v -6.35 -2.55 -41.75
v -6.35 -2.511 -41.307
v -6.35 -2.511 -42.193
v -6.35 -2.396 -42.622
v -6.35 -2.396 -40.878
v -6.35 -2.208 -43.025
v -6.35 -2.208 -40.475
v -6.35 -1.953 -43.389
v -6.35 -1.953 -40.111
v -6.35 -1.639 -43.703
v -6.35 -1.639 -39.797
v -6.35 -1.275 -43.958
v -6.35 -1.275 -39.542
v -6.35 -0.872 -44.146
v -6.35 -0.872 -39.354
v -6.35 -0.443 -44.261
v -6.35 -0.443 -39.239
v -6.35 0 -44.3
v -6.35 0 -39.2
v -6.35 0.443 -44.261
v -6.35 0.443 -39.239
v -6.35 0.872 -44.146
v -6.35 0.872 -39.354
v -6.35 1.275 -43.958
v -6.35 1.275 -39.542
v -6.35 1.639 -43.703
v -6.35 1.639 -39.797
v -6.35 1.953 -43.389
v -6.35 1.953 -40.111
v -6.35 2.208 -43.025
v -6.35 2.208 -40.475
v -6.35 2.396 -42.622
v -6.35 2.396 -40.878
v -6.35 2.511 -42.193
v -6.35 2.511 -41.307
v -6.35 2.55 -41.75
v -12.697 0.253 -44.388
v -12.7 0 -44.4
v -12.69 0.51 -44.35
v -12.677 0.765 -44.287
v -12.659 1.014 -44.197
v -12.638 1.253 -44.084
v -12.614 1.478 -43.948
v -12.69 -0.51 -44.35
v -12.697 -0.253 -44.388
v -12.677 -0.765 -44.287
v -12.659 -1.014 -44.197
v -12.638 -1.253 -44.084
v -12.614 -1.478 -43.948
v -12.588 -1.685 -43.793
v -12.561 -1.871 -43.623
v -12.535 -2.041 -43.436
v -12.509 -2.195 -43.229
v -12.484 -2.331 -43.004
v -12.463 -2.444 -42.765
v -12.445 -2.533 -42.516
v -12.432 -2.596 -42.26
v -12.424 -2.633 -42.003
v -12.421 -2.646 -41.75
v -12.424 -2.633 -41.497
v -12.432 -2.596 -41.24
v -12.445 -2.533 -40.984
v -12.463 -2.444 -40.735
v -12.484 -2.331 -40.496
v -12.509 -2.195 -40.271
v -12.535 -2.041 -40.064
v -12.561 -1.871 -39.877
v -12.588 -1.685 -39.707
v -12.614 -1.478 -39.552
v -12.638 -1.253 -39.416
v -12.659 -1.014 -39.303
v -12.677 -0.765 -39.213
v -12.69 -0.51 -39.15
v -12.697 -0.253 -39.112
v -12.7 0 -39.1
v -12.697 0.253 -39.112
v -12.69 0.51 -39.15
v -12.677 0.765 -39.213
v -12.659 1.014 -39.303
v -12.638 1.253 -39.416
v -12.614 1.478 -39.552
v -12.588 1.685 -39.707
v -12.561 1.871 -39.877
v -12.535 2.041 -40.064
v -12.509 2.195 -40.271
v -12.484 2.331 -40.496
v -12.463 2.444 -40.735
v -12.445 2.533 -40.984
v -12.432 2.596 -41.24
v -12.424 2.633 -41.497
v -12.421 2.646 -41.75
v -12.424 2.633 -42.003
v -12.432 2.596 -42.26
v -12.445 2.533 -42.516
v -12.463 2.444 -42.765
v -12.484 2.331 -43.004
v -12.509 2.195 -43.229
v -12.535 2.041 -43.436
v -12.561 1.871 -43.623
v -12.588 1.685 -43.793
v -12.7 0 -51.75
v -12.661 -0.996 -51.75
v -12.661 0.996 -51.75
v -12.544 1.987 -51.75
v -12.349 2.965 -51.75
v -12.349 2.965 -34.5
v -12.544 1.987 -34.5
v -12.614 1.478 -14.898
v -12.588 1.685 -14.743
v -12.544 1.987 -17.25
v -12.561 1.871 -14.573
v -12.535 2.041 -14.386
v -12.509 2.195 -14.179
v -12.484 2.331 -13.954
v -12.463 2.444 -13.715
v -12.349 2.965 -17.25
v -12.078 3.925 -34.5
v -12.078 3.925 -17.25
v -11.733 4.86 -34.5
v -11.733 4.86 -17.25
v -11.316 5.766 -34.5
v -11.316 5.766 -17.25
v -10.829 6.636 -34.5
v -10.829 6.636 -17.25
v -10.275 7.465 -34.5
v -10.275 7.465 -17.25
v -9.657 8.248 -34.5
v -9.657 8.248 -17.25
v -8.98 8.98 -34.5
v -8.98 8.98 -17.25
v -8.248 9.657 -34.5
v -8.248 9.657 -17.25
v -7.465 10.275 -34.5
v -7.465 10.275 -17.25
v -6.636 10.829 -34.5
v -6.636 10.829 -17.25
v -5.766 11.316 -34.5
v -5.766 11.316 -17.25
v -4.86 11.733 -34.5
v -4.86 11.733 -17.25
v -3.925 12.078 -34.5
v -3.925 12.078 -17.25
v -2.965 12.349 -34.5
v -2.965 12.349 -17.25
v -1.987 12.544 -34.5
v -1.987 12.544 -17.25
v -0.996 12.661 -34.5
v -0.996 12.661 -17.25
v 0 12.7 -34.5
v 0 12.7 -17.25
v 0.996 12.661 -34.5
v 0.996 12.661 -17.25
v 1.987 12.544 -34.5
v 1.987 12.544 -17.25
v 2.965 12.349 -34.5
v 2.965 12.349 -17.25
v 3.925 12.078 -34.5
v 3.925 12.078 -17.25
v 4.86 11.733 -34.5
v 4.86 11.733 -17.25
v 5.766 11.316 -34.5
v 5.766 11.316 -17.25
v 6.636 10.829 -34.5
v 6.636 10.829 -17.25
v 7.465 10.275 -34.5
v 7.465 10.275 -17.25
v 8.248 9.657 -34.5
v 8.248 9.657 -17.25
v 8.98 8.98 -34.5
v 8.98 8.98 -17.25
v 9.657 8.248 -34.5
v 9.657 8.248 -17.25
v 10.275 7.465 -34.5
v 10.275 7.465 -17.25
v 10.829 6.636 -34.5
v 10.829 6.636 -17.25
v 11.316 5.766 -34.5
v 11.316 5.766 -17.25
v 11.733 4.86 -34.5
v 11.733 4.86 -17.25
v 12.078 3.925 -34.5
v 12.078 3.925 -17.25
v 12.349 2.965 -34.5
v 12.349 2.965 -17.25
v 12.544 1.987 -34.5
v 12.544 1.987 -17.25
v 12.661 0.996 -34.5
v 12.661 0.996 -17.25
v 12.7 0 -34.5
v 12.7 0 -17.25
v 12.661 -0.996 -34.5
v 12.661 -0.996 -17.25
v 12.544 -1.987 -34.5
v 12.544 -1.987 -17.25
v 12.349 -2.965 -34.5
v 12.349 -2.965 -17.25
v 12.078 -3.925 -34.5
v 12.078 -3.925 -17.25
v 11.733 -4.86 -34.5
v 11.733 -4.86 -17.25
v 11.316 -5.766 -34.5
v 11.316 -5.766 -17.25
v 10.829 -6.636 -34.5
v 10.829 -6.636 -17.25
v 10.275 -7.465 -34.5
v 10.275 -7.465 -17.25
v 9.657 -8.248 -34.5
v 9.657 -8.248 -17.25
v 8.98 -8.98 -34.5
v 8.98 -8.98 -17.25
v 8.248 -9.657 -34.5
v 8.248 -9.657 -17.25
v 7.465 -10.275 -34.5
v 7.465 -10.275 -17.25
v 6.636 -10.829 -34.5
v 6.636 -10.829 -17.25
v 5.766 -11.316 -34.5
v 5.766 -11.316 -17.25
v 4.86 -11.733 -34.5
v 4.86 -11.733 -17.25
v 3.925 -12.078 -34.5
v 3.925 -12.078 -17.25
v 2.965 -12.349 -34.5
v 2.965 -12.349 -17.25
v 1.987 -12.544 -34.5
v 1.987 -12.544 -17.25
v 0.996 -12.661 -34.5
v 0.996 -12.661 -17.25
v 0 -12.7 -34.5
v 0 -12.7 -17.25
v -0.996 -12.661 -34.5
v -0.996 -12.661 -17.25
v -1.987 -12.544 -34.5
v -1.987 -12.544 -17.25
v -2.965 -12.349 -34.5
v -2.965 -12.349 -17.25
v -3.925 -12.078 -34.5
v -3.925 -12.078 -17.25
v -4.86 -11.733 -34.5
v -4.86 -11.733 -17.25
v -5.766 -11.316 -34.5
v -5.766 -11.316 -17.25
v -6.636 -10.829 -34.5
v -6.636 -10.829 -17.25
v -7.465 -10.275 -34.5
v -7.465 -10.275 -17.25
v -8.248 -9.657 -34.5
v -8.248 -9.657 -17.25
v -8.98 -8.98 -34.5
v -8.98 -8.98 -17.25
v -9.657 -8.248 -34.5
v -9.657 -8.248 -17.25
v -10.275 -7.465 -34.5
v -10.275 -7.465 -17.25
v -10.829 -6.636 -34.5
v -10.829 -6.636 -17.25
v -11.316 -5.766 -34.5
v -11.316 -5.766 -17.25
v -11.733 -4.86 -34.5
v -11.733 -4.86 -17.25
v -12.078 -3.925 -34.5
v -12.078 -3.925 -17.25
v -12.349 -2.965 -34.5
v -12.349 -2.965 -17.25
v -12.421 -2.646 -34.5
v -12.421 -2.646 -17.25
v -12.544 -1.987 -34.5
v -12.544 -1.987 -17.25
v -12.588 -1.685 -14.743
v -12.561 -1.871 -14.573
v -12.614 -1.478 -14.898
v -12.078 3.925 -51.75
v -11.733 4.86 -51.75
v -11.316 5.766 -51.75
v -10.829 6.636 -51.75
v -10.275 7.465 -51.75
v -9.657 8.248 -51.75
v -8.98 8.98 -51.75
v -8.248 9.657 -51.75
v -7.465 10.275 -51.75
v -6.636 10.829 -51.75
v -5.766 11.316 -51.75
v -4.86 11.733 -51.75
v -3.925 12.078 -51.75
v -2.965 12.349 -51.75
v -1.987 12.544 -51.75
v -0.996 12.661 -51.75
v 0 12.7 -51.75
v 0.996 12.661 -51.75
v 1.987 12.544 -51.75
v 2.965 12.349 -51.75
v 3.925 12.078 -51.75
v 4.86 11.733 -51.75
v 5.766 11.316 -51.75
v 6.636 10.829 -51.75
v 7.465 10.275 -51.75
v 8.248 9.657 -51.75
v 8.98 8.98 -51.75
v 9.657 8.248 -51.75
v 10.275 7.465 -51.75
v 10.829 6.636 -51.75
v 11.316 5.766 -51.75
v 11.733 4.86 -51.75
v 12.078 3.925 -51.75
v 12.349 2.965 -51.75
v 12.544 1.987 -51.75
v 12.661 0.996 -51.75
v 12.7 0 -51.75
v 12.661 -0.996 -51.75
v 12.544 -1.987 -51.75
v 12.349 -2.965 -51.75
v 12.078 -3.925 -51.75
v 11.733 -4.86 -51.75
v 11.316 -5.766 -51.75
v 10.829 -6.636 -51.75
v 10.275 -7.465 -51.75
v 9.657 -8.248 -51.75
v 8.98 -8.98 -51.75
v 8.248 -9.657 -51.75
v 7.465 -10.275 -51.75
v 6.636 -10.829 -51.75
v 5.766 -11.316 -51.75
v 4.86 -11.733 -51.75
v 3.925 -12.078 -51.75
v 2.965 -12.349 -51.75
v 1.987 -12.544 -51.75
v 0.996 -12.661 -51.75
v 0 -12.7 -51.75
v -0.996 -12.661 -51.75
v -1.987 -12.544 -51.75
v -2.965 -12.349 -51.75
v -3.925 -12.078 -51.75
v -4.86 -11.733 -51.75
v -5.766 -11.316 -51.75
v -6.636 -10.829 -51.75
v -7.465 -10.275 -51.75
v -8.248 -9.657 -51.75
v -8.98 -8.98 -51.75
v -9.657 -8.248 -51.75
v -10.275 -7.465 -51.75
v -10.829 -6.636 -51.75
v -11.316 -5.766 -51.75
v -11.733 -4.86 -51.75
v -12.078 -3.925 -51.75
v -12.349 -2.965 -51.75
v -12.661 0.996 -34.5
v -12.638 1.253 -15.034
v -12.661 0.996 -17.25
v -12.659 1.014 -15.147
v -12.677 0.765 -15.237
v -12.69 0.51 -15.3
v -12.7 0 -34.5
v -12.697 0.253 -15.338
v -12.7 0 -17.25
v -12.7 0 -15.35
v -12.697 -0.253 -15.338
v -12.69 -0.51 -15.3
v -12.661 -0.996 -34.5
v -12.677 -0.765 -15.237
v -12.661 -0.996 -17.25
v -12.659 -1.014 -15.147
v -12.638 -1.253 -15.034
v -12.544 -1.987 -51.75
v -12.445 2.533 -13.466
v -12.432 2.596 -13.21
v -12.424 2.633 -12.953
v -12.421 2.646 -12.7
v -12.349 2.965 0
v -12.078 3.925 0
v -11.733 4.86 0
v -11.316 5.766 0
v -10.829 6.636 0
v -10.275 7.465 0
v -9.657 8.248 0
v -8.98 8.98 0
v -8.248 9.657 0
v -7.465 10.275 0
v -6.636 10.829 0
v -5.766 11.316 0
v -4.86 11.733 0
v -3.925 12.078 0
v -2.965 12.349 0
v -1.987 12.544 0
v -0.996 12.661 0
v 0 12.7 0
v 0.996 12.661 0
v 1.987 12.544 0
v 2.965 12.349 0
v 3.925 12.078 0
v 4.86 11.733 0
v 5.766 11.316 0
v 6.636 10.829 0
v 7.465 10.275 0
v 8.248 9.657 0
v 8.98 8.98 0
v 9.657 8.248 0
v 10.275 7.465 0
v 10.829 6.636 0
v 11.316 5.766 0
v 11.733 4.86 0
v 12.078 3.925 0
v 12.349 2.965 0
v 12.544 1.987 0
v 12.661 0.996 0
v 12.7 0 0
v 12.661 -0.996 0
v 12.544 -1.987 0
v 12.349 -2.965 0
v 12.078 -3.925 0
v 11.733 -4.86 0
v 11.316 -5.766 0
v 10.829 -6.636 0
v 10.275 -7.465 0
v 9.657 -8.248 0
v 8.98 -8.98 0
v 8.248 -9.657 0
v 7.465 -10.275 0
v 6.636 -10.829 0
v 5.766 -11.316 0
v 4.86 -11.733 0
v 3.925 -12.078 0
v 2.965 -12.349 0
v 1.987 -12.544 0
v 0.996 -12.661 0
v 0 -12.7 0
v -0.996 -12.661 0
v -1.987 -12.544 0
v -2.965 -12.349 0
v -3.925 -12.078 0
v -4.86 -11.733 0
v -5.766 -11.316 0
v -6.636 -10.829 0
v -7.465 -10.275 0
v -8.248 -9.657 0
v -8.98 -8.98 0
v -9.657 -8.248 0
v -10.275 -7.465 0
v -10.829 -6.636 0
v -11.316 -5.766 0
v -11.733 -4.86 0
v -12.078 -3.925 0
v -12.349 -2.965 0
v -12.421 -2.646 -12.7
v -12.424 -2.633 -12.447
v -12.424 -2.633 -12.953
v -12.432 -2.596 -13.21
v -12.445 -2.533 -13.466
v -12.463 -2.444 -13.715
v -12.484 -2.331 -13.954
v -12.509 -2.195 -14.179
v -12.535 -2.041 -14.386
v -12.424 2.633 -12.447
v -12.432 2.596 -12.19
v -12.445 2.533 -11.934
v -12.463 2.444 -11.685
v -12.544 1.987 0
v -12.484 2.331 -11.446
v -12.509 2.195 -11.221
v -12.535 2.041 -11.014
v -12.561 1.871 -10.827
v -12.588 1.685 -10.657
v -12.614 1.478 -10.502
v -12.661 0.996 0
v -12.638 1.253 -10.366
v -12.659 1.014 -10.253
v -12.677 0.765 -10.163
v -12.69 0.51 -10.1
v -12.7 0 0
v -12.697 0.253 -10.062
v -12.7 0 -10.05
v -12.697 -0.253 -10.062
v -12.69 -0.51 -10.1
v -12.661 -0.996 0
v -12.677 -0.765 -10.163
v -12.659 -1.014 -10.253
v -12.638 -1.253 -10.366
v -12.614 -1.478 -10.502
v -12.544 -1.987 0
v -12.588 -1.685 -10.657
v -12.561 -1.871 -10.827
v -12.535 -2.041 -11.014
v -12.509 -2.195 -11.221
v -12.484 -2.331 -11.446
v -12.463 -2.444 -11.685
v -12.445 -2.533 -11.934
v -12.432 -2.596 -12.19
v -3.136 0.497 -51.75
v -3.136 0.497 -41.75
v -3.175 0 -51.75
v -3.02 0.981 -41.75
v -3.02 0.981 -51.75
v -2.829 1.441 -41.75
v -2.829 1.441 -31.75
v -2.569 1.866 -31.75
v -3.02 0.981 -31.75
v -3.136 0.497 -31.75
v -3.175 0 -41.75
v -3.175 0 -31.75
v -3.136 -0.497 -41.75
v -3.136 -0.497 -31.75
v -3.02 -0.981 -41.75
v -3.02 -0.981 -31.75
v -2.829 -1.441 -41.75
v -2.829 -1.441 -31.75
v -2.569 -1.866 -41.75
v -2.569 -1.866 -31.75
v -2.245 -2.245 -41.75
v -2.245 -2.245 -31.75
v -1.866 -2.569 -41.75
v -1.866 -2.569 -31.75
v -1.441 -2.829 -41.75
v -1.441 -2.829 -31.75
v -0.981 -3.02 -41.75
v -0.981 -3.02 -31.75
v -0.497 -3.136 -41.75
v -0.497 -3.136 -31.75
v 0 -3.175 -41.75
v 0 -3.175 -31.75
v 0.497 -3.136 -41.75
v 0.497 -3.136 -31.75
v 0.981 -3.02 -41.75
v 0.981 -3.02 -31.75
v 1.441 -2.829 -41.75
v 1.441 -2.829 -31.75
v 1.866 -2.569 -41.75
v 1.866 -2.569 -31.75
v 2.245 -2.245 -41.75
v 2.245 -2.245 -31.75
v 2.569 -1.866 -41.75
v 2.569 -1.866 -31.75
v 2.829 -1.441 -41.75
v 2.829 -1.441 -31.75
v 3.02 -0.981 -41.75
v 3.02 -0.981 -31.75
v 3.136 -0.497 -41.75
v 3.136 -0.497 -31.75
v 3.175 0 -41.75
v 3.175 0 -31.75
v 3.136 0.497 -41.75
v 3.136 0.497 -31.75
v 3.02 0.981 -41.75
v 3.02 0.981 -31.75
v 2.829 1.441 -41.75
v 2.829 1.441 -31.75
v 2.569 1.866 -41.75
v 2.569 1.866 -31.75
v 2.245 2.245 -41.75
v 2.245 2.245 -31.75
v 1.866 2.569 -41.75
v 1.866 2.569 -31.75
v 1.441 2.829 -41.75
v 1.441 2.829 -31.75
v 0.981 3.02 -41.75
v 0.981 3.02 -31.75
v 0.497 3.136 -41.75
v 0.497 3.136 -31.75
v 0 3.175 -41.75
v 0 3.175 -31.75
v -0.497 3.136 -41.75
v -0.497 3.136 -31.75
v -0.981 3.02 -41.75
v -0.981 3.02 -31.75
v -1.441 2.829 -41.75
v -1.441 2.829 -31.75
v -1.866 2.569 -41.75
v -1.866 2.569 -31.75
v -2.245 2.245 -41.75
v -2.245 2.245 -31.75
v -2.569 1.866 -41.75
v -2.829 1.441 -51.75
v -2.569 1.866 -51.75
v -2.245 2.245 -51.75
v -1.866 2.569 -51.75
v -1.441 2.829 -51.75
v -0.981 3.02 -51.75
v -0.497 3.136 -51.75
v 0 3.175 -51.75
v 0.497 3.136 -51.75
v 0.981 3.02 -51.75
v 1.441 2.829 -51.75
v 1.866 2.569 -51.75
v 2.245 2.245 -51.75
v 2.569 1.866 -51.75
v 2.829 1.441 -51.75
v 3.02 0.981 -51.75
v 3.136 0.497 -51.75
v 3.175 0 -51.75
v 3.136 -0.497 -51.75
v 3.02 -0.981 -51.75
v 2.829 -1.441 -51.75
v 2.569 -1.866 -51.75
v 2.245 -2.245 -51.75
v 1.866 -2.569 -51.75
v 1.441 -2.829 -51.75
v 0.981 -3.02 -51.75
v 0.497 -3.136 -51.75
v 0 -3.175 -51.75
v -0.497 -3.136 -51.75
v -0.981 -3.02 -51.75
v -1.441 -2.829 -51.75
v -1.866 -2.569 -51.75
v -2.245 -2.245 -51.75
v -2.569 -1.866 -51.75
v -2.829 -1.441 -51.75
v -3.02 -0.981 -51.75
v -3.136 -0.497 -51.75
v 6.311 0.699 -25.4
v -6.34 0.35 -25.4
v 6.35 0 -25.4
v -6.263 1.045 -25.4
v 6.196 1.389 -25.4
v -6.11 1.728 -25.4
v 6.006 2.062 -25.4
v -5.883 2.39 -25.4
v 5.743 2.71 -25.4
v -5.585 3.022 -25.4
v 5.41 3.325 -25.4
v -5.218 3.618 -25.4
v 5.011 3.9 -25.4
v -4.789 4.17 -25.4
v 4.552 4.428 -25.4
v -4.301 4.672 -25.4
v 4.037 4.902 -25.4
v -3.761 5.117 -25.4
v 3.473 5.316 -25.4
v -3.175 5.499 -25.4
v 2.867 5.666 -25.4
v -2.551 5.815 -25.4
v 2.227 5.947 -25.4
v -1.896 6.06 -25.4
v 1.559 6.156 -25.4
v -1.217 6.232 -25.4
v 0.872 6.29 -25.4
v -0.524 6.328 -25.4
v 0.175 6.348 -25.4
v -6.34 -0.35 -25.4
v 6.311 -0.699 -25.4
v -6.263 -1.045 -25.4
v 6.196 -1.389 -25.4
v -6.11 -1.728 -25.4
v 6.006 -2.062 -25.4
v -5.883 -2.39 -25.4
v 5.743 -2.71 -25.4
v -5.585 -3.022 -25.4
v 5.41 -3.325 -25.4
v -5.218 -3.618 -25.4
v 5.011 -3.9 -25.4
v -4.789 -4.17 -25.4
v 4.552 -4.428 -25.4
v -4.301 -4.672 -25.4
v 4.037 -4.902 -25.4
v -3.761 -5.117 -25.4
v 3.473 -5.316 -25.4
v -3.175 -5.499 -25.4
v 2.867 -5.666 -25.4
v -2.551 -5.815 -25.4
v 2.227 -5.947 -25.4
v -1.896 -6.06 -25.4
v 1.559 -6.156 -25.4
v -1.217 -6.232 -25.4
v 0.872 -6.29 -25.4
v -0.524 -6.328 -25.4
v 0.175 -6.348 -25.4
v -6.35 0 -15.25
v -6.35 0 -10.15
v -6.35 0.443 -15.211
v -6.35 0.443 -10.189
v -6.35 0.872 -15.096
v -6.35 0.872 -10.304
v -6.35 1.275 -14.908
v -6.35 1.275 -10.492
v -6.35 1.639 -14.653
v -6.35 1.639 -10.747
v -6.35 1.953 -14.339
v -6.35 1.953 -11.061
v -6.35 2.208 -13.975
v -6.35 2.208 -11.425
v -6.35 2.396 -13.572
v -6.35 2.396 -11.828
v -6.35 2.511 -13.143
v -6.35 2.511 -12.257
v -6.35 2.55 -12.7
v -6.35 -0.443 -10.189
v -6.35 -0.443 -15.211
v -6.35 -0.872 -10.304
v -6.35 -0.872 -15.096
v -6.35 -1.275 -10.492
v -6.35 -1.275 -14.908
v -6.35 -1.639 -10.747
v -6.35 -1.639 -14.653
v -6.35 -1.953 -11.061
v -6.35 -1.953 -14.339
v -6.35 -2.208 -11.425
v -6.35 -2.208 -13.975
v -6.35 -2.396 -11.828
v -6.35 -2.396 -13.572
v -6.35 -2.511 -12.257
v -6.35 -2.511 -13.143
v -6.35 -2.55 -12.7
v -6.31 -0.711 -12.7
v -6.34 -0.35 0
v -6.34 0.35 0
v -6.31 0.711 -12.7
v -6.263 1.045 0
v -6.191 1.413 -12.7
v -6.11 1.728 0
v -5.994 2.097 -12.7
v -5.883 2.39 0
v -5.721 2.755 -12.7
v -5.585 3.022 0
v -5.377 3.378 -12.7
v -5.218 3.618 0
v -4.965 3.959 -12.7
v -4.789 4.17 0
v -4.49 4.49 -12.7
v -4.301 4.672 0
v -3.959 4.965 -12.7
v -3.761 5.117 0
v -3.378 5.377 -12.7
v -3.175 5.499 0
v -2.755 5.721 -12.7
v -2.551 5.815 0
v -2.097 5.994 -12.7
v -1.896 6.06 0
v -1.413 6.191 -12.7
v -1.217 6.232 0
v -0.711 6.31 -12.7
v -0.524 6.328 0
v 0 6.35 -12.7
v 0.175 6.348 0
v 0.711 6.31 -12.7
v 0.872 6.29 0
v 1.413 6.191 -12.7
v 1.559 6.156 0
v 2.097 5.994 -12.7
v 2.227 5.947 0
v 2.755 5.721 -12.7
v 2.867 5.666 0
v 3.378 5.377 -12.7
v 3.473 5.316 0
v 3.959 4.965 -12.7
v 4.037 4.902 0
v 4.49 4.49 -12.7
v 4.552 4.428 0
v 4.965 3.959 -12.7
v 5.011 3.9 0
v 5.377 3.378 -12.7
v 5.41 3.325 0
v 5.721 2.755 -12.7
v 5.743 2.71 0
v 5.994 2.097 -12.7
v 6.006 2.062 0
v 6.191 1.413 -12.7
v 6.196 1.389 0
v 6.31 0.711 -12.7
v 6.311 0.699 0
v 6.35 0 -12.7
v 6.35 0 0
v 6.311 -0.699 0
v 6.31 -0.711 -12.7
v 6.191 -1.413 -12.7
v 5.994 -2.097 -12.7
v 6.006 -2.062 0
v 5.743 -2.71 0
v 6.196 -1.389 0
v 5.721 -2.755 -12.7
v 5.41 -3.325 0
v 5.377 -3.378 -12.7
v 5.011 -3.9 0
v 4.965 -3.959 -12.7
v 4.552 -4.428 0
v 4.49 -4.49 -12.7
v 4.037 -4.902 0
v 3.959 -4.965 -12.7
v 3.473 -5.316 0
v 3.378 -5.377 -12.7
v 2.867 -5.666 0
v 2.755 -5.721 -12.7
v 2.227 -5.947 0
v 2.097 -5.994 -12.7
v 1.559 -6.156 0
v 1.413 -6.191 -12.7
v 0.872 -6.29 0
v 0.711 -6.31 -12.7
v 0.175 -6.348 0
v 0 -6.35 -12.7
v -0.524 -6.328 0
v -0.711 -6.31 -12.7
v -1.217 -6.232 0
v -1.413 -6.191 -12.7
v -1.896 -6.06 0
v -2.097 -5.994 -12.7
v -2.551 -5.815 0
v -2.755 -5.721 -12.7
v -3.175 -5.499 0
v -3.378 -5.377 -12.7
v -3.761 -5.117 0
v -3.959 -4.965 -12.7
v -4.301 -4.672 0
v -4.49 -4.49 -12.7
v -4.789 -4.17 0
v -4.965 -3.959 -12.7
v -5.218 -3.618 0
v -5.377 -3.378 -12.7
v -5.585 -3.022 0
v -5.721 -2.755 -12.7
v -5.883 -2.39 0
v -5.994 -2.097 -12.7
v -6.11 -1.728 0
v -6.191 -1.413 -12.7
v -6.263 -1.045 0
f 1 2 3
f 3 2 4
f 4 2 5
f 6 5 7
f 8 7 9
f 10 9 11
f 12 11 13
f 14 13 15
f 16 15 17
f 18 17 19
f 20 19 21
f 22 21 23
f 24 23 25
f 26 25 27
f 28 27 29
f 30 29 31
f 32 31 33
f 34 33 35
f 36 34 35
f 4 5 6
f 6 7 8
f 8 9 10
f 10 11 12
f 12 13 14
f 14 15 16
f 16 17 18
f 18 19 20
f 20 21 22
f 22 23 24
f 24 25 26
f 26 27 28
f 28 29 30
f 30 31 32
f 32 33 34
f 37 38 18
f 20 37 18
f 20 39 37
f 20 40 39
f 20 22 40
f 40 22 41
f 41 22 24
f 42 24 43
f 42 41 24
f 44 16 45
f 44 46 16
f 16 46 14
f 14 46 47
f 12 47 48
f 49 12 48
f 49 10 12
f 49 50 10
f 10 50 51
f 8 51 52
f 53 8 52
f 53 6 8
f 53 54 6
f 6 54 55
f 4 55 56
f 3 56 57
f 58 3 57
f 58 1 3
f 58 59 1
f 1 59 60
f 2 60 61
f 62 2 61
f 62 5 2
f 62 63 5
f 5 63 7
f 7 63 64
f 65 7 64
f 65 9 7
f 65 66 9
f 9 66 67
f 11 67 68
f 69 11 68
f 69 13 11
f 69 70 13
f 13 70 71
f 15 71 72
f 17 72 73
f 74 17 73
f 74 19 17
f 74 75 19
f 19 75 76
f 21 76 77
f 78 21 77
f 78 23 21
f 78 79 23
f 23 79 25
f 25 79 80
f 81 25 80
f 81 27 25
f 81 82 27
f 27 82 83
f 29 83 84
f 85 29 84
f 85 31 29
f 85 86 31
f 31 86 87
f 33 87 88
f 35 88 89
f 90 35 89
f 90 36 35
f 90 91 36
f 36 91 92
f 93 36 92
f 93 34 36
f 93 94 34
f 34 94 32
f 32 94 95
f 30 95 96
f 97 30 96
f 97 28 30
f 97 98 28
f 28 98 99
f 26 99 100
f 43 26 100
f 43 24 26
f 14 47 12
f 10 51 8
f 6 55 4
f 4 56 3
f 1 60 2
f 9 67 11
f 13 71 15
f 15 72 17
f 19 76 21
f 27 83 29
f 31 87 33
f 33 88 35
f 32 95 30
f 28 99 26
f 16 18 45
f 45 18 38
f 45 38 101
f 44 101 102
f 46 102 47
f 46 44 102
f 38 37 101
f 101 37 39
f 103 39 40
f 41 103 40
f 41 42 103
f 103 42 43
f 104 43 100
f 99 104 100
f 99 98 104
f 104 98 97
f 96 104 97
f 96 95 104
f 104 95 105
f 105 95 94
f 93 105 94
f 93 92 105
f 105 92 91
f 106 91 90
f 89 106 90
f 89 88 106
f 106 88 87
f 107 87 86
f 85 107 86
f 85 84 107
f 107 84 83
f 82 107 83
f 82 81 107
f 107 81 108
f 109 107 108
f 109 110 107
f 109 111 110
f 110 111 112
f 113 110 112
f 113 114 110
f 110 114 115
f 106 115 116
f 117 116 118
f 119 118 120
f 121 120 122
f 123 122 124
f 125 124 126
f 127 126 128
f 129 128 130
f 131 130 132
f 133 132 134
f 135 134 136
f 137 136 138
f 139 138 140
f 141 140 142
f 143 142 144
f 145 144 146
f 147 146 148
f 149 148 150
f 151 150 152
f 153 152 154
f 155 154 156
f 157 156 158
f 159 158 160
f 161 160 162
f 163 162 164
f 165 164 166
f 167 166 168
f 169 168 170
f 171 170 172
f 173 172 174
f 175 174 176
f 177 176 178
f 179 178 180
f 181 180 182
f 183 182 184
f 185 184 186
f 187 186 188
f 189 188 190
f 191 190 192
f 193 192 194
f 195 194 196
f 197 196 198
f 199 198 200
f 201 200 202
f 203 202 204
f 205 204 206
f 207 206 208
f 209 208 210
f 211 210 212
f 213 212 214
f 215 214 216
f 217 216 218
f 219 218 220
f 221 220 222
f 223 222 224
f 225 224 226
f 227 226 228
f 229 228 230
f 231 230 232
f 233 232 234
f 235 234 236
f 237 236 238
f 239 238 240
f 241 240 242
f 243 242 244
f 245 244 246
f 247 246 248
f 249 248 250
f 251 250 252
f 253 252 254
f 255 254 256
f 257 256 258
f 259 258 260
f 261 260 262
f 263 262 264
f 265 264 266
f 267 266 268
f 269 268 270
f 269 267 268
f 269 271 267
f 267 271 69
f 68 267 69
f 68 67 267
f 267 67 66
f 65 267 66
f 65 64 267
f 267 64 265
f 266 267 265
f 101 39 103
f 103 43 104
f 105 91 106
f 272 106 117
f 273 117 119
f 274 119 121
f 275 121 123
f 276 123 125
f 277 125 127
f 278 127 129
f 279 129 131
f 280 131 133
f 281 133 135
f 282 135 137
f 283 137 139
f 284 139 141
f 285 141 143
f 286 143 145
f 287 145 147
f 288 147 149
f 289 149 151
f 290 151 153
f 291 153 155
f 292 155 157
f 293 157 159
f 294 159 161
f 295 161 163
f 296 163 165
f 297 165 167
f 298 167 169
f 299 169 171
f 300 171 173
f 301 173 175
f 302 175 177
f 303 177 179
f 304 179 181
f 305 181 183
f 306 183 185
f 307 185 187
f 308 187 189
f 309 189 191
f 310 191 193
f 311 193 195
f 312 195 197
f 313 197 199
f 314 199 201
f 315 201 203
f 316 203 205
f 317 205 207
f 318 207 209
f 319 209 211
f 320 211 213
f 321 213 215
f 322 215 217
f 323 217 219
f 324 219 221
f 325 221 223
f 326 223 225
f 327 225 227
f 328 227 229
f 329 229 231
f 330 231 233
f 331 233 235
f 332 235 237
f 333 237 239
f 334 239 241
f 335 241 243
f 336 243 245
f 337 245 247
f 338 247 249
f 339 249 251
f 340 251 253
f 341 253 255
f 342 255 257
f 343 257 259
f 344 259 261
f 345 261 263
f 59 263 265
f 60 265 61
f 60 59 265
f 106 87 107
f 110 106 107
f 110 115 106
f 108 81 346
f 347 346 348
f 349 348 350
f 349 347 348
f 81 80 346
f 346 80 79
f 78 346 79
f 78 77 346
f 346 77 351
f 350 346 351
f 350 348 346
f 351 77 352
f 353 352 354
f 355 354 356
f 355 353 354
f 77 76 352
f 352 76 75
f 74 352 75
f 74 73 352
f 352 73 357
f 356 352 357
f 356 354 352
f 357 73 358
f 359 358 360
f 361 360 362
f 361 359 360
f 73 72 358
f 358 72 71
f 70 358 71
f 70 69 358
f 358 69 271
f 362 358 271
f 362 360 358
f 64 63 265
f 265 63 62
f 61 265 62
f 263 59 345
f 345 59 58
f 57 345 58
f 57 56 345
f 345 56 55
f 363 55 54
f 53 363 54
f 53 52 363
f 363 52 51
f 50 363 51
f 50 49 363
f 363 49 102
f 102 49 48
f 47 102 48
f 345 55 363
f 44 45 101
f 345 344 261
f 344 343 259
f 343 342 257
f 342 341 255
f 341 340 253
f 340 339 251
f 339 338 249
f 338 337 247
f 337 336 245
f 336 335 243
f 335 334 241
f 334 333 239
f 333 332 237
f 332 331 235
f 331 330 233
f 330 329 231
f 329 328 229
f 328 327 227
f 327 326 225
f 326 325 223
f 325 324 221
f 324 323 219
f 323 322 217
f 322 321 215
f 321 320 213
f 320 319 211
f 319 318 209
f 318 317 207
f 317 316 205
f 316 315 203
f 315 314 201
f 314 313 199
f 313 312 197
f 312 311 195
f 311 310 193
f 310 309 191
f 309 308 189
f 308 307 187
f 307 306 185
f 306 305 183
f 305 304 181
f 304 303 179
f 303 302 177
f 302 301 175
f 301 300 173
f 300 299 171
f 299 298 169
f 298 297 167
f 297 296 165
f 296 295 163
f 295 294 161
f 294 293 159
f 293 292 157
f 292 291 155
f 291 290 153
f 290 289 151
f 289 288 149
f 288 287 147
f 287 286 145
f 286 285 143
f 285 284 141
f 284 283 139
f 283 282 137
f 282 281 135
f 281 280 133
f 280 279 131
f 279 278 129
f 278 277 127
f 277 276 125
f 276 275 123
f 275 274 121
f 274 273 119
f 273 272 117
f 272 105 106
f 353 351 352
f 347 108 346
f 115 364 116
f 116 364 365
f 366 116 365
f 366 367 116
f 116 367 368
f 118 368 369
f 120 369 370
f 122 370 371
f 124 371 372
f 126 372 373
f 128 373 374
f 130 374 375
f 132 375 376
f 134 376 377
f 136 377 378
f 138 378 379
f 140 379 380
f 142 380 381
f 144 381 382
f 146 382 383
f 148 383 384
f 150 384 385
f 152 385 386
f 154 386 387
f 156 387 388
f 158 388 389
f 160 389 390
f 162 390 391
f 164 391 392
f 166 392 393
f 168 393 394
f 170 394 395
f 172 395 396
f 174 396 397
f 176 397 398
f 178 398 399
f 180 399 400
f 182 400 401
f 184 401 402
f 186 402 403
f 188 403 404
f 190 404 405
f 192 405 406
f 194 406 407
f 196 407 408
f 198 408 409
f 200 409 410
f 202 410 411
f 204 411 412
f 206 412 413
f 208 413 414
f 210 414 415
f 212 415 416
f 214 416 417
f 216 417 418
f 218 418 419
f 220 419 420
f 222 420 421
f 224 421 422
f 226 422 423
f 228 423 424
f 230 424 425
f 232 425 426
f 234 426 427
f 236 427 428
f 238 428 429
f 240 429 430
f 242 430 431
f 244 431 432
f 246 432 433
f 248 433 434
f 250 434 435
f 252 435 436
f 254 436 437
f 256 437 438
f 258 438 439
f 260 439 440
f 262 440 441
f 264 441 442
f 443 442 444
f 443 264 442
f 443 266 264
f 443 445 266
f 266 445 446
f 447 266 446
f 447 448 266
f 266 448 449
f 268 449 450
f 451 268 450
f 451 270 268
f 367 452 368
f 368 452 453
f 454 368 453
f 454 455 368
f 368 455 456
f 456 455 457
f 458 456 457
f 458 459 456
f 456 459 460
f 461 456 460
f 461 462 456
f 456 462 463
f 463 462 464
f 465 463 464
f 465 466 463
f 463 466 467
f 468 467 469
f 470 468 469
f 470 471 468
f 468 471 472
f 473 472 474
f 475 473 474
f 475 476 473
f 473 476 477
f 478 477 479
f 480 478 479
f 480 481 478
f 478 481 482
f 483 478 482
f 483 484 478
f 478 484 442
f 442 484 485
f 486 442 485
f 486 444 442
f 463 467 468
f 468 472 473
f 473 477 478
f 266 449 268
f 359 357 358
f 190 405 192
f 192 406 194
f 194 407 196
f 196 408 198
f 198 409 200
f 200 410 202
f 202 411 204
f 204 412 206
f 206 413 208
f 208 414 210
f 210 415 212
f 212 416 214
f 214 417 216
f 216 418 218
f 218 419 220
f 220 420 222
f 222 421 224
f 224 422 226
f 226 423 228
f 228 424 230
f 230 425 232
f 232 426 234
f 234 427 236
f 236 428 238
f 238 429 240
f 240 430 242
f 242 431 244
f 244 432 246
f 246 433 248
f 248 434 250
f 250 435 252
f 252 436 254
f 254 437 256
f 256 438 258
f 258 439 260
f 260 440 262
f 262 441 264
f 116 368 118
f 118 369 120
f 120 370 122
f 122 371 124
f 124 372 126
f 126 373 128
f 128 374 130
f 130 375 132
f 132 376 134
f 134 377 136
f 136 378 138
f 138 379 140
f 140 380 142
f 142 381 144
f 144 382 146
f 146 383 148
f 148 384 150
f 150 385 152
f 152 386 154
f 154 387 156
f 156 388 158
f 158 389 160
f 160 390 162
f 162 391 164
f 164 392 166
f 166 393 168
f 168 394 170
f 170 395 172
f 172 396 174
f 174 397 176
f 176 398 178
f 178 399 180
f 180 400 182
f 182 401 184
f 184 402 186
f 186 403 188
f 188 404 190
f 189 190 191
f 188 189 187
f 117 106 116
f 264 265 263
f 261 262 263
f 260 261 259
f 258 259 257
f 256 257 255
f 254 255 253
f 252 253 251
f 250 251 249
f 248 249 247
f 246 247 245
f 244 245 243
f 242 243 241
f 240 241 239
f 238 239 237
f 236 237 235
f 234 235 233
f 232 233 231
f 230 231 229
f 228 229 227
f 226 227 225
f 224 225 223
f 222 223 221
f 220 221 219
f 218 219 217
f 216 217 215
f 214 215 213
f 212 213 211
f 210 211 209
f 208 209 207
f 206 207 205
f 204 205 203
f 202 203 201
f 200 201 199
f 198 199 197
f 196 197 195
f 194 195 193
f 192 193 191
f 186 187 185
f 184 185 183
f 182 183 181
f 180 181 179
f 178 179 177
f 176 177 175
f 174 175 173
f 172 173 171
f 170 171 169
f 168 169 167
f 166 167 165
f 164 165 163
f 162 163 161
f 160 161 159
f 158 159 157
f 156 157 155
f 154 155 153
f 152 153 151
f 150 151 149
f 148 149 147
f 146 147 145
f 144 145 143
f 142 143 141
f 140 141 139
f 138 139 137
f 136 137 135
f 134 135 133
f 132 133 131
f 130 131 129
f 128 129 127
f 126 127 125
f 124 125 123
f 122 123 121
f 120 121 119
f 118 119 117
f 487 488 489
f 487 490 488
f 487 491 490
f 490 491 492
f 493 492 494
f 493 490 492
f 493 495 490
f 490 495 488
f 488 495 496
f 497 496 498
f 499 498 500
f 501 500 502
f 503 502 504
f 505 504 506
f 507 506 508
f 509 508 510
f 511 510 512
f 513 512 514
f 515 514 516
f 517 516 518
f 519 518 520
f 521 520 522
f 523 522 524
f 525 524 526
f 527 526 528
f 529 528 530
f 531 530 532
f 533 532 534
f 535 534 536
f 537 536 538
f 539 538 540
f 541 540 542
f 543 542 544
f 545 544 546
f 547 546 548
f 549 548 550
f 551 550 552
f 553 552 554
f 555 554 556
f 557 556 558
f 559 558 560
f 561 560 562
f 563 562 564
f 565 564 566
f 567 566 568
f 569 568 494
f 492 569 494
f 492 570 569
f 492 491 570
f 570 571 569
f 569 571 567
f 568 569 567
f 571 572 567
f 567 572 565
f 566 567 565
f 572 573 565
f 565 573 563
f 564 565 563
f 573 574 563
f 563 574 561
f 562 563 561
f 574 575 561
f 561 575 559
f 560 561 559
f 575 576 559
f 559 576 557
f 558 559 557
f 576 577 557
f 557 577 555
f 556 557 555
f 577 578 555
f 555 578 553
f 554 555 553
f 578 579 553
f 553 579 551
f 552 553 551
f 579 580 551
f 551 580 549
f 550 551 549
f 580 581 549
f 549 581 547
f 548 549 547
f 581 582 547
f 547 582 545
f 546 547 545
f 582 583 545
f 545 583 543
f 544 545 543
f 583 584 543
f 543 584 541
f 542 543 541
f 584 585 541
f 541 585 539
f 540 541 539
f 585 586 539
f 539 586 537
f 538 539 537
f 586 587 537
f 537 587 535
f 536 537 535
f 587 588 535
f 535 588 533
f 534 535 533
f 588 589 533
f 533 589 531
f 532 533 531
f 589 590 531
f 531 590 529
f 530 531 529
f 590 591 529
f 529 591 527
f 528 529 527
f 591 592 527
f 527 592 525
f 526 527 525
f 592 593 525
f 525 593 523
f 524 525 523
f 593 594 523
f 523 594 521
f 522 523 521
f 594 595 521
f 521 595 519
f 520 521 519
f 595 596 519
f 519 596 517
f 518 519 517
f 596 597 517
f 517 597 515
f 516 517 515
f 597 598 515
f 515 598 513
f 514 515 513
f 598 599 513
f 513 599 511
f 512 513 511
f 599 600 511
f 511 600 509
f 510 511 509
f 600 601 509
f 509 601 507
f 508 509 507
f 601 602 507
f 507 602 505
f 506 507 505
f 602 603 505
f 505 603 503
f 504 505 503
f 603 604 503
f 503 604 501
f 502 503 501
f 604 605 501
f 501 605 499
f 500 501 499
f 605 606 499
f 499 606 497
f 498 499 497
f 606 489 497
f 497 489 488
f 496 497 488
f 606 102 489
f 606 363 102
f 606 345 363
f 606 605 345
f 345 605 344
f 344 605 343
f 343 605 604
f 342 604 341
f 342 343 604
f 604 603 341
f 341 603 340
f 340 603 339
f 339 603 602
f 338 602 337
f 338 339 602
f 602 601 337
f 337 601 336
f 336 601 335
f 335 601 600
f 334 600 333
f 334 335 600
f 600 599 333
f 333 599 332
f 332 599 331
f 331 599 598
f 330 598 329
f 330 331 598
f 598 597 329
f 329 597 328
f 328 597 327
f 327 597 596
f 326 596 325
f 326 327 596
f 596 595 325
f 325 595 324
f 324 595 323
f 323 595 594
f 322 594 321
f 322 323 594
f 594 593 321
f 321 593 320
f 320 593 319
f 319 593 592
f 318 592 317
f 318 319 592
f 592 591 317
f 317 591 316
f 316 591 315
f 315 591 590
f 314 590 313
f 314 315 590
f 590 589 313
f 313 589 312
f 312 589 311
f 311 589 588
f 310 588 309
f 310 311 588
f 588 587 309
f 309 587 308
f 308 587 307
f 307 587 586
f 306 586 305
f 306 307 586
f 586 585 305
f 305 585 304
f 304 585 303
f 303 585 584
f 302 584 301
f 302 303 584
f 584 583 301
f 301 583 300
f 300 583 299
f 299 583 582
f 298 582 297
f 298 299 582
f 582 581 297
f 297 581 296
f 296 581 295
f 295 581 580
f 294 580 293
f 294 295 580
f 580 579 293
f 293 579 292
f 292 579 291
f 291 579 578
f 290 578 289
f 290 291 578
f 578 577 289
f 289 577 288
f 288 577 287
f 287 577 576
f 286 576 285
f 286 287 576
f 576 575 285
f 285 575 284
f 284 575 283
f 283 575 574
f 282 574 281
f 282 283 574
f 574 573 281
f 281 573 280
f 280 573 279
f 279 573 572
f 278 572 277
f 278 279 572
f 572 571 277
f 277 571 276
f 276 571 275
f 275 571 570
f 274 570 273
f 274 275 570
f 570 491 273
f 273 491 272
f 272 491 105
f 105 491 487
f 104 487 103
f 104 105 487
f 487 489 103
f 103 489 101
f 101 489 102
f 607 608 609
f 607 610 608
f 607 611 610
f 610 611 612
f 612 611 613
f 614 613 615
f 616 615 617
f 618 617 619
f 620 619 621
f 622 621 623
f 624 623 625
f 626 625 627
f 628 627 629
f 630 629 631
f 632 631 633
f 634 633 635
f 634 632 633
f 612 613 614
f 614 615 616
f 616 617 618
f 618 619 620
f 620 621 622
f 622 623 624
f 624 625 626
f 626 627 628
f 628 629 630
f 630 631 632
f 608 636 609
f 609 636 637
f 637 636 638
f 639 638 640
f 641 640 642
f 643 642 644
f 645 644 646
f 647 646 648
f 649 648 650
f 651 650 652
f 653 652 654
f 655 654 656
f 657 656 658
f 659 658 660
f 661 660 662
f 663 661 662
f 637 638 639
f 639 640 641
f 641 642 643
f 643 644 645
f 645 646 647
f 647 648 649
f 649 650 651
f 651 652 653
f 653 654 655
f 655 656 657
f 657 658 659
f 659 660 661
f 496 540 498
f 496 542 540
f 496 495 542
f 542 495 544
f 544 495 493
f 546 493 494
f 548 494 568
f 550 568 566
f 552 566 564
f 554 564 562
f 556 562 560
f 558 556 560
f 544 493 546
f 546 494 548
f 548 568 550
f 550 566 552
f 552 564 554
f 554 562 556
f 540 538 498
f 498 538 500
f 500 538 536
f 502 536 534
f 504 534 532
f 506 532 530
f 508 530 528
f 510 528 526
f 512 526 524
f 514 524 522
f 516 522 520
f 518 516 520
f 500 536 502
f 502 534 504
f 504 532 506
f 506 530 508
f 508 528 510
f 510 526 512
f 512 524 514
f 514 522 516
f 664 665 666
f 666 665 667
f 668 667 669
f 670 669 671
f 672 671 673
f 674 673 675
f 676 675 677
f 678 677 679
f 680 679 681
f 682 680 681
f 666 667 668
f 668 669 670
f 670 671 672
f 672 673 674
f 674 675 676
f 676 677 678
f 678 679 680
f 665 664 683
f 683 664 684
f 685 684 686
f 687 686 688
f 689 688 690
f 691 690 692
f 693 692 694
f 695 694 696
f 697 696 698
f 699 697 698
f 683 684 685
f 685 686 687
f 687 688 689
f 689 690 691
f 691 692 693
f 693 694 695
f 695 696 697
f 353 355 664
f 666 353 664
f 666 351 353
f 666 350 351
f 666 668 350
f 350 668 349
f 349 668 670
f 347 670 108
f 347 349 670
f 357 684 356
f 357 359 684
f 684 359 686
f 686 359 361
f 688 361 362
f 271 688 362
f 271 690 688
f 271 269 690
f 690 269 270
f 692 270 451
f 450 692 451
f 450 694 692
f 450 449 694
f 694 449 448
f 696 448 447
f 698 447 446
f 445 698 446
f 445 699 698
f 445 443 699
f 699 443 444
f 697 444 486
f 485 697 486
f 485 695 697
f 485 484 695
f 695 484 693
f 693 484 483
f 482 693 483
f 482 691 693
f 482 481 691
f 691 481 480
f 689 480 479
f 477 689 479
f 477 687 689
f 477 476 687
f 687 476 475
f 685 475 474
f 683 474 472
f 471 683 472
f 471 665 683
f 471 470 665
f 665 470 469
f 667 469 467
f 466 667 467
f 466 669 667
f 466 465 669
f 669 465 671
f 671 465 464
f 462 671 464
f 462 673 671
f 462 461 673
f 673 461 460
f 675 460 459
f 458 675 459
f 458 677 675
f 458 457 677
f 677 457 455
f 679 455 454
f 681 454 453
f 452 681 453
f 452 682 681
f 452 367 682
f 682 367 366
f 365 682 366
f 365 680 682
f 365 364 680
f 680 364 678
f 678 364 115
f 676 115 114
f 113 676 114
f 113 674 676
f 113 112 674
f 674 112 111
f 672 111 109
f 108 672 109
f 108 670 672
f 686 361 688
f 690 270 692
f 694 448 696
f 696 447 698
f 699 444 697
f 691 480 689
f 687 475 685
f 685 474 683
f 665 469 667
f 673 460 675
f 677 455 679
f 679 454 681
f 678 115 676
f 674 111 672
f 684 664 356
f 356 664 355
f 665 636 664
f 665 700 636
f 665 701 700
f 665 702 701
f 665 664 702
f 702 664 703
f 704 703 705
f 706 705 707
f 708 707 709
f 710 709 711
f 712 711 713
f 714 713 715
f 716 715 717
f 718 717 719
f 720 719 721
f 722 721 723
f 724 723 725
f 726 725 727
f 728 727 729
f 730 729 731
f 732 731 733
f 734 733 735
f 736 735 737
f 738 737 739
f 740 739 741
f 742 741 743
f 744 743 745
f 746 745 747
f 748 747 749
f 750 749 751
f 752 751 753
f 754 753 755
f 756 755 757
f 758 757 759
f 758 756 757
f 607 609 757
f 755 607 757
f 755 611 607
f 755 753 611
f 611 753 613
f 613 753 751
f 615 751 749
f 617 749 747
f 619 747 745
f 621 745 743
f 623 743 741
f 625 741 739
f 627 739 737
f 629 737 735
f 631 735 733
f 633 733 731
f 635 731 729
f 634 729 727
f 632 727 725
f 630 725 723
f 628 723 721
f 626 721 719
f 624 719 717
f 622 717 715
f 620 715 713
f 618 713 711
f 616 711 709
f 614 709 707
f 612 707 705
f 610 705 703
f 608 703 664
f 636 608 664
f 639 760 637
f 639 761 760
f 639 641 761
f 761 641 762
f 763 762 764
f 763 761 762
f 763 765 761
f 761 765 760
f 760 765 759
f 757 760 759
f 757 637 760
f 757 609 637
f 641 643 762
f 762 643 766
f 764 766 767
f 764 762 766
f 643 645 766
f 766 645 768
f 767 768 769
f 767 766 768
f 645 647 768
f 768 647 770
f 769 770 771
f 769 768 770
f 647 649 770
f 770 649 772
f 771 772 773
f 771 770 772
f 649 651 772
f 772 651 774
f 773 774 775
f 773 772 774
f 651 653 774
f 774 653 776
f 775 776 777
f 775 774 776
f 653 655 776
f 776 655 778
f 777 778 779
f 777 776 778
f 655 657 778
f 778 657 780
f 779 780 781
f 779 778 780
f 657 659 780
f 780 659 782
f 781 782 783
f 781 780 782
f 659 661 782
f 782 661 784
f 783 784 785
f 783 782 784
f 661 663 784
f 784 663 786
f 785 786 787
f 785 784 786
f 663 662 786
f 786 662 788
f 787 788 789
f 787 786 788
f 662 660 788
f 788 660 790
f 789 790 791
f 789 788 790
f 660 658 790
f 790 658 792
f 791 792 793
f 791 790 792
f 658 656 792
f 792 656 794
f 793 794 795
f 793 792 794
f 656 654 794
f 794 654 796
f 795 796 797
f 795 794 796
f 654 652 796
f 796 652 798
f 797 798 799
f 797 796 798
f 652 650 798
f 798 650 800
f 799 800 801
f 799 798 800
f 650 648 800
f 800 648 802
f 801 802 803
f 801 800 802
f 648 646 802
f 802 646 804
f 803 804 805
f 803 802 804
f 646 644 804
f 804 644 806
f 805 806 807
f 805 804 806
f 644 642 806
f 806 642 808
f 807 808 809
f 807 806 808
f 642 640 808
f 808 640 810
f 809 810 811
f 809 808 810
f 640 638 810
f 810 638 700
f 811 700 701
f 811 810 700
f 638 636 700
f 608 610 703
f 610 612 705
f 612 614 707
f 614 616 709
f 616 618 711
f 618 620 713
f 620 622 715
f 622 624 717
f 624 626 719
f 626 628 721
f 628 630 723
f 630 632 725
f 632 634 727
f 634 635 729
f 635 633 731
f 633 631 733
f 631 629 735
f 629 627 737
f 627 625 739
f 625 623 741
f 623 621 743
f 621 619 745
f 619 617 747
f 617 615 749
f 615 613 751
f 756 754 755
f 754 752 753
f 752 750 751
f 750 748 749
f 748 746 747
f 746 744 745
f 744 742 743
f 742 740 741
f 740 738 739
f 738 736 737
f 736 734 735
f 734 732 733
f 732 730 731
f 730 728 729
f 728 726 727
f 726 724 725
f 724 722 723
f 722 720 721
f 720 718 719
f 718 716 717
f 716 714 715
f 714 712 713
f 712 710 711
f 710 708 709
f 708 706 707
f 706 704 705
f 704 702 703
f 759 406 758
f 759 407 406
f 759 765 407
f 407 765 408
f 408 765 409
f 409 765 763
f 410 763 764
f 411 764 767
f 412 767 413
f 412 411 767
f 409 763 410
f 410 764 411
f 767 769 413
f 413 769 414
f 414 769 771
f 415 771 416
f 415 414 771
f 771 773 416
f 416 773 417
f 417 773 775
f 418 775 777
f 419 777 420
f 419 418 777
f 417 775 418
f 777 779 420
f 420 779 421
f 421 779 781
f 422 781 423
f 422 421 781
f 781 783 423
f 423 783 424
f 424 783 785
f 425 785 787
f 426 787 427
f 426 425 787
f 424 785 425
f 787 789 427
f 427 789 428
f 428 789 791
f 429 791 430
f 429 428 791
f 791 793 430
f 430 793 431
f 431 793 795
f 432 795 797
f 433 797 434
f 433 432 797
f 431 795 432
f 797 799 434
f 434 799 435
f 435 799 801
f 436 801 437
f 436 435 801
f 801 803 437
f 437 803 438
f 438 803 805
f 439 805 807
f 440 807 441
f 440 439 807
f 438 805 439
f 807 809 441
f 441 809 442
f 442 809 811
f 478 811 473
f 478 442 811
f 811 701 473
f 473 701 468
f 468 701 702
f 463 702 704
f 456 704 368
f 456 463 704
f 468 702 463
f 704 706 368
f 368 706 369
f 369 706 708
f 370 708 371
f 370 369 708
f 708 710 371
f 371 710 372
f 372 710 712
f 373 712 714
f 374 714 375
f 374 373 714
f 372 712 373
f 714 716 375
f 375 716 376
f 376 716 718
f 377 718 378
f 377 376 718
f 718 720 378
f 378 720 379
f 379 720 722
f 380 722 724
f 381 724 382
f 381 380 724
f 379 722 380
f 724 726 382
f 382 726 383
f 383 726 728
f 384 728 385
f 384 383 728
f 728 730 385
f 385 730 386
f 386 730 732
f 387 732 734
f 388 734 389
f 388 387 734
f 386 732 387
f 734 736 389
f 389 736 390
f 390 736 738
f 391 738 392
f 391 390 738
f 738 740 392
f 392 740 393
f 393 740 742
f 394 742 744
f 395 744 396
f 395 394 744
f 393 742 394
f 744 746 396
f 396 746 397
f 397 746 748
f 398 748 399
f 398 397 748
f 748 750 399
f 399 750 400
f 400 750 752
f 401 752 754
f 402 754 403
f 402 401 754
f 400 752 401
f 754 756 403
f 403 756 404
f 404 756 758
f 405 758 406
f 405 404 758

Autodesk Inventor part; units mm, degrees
ref_plane "XZ Plane" through (0, 0, 0) normal (0, 1, 0) x (-1, 0, 0)
ref_plane "XY Plane" through (0, 0, 0) normal (0, 0, 1) x (1, 0, 0)
sketch "Sketch1" plane through (0, 0, 0) normal (0, 0, 1) x (1, 0, 0)
  circle A0 centre (0, 0) radius 12.7
  circle A1 centre (0, 0) radius 6.35
  dimension "d0" = 25.4
  dimension "d1" = 12.7
extrude "Extrusion1" add sketch "Sketch1" against normal blind 25.4
sketch "Sketch2" plane through (0, 0, 0) normal (0, 1, 0) x (-1, 0, 0)
  point P0 (0, 0)
ref_plane "Work Plane2" through (-12.7, 0, 0) normal (1, 0, 0) x (0, 1, 0)
ref_plane "Work Plane1" through (-6.35, 0, 0) normal (1, 0, 0) x (0, 1, 0)
sketch "Sketch3" plane through (-6.35, 0, 0) normal (1, 0, 0) x (0, 1, 0)
  line L0 (-12.7, -25.4) -> (12.7, -25.4) construction
  line L1 (0, -25.4) -> (0, 0) construction
  circle A0 centre (0, -12.7) radius 2.55
  dimension "d6" = 5.1
sketch "Sketch4" plane through (-12.7, 0, 0) normal (1, 0, 0) x (0, 1, 0)
  line L0 (-12.7, -25.4) -> (12.7, -25.4) construction
  line L1 (0, -25.4) -> (0, 0) construction
  circle A0 centre (0, -12.7) radius 2.65
  dimension "d7" = 5.3
loft "Loft1" cut profiles "Sketch3", "Sketch4"
sketch "Sketch5" plane through (0, 0, -25.4) normal (0, 0, -1) x (-1, 0, 0)
  circle A0 centre (0, 0) radius 6.35 projected
  circle A1 centre (0, 0) radius 12.7
extrude "Extrusion2" add sketch "Sketch5" along normal blind 6.35 contours A0 | A1
sketch "Sketch6" plane through (0, 0, -31.75) normal (0, 0, -1) x (-1, 0, 0)
  circle A0 centre (0, 0) radius 12.7
  circle A1 centre (0, 0) radius 3.175
  dimension "d14" = 6.35
extrude "Extrusion3" add sketch "Sketch6" along normal blind 20
sketch "Sketch7" plane through (-6.35, 0, 0) normal (1, 0, 0) x (0, 1, 0)
  line L0 (-12.7, -51.75) -> (12.7, -51.75) construction
  line L1 (0, -51.75) -> (0, -31.75) construction
  line L2 (-3.175, -31.75) -> (3.175, -31.75) construction
  circle A0 centre (0, -41.75) radius 2.55
  point P0 (0, 0)
  dimension "d17" = 5.1
sketch "Sketch8" plane through (-12.7, 0, 0) normal (1, 0, 0) x (0, 1, 0)
  line L0 (-12.7, -51.75) -> (12.7, -51.75) construction
  line L1 (0, -51.75) -> (0, -31.75) construction
  line L2 (-3.175, -31.75) -> (3.175, -31.75) construction
  circle A0 centre (0, -41.75) radius 2.65
  point P0 (0, 0)
  dimension "d18" = 5.3
loft "Loft2" cut profiles "Sketch7", "Sketch8"
properties part number "Threaded Rod Coupler"
